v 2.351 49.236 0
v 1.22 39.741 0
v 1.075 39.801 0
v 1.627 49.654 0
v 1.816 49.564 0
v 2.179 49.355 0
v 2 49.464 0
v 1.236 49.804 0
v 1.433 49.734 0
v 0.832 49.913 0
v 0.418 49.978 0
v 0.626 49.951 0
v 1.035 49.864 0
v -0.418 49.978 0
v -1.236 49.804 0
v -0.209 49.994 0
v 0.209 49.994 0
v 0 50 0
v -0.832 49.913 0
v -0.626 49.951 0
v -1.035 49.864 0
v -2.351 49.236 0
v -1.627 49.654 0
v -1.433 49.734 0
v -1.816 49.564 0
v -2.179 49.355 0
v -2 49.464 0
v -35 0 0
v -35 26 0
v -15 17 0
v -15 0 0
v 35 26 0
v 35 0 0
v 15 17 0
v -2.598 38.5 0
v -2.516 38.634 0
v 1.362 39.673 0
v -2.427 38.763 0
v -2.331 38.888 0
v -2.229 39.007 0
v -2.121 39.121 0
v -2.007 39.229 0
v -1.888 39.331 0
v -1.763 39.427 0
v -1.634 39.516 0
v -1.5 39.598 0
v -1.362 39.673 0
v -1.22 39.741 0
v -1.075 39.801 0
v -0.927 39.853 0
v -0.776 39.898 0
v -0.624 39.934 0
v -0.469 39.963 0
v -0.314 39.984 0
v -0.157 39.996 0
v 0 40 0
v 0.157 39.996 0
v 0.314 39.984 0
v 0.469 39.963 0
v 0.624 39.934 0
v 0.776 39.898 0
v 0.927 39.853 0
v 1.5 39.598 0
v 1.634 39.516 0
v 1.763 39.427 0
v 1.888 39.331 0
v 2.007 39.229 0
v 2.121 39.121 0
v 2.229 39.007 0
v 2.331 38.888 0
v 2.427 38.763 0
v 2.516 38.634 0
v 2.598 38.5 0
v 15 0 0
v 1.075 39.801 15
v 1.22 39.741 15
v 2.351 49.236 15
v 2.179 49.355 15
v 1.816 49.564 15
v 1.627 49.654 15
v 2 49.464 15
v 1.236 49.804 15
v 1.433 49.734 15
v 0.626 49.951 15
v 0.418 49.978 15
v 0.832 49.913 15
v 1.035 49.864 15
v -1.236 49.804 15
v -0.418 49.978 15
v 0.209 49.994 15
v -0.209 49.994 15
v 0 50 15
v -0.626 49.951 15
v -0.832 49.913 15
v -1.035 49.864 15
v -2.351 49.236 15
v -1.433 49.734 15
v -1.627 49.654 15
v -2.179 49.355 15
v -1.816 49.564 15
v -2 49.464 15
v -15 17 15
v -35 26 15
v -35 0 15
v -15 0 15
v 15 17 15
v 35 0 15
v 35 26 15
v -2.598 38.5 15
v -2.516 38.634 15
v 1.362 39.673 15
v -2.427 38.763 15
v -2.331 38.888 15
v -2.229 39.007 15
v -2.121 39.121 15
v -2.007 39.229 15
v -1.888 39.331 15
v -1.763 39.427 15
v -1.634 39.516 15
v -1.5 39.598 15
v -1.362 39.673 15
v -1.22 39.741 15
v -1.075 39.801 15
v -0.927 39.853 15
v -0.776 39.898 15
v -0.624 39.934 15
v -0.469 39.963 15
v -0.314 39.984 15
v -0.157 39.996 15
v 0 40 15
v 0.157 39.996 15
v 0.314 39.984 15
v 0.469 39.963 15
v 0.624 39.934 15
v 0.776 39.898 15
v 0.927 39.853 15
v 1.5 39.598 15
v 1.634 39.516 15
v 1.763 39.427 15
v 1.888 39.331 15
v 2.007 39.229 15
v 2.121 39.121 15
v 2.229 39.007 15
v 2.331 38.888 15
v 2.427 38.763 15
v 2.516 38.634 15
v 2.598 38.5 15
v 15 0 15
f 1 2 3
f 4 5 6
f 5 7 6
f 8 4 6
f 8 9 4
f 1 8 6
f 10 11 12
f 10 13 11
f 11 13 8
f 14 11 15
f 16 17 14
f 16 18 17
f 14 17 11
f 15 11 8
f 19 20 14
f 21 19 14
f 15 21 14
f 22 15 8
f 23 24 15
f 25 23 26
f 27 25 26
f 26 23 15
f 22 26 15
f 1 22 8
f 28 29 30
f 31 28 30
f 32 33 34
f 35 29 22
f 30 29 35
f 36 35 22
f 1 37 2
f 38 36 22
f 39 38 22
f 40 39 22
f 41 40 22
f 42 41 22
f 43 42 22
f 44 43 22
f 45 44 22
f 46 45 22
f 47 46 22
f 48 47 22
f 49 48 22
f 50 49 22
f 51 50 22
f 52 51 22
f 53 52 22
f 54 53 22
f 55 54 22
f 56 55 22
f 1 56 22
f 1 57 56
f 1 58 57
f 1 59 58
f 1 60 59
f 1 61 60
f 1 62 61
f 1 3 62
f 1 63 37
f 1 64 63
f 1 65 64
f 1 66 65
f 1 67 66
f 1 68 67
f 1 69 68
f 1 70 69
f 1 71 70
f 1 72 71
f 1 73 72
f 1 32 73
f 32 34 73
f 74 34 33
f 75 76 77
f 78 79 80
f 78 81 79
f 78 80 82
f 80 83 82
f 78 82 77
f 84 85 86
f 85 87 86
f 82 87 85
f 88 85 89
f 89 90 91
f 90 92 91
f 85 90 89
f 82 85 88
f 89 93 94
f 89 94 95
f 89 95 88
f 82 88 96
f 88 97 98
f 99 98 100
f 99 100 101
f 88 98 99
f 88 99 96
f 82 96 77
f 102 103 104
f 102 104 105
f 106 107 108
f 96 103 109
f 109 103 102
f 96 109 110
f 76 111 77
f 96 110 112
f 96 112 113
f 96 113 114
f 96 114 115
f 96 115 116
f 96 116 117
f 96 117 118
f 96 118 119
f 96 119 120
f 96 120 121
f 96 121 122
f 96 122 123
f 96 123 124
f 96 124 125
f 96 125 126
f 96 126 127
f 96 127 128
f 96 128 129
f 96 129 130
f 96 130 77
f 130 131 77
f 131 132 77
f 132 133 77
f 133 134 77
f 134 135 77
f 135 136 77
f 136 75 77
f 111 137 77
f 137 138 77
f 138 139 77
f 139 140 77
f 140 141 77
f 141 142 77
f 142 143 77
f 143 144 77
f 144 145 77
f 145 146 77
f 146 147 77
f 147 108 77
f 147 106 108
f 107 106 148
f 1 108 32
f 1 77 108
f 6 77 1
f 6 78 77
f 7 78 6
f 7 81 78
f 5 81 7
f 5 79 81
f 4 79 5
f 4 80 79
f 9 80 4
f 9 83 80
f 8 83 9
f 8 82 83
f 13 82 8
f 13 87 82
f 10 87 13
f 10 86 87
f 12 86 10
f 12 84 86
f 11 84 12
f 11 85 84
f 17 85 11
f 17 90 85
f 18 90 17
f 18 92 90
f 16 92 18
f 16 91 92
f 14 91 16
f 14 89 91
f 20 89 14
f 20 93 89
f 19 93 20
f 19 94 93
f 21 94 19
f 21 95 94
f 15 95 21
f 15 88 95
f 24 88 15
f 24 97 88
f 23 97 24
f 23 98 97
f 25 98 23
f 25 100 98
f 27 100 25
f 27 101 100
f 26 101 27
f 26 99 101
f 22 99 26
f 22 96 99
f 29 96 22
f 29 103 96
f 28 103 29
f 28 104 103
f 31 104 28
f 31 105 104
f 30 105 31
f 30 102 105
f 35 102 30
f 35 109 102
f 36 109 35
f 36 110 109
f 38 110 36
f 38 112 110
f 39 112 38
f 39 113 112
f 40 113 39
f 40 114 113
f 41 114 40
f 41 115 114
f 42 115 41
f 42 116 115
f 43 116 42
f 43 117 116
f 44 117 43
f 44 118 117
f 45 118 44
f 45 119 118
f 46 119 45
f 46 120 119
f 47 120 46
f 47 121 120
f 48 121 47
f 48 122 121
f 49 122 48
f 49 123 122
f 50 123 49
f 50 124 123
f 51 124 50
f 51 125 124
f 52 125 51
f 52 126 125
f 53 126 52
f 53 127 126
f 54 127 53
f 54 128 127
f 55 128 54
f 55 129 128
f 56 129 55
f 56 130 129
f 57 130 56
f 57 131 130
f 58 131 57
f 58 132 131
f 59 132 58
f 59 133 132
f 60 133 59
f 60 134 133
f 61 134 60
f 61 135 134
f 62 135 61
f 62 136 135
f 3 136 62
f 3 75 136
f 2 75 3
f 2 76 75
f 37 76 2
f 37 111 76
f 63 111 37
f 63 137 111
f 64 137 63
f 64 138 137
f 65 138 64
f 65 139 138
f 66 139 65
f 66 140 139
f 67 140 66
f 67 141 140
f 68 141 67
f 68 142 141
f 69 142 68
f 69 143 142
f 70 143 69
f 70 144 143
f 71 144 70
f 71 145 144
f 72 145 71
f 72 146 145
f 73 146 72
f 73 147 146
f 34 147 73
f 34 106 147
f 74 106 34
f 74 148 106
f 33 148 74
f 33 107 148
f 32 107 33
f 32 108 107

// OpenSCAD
// coerce_lexpr bridge — typed substitution session, 2026-05-29
//
// "Bidirectional wrapper-kind-and-depth coercion. Bridge `value`
//  (currently at `from_typ`) to `to_typ` by inserting `.deref` chain
//  and/or `.mk` chain to match wrapper sequences. Common-suffix
//  wraps stay untouched."
//
// — lean_verify/src/expr_shared.rs, coerce_lexpr
//
// The function spans a gap between two typings while preserving the
// inner that doesn't need to change. The sculpture is shaped the
// same way: two pillars separated by an arched opening you can see
// through, with the inner space preserved.
//
// Print orientation: stand on the bottom (the flat base of the two
// pillars). The arch is self-supporting because it's circular at the
// top — no overhangs steeper than ~45°. ~0.2mm layer height,
// ~20% infill.

$fn = 120;

// ── Dimensions (mm) ──
width = 70;             // total width across both pillars
total_height = 50;      // peak of the arch above the ground
pillar_width = 10;      // outer leg thickness
opening_width_top = 30; // arch opening width at its widest
wall_thickness = 8;     // distance from outer arch to inner arch
depth = 15;             // extrude depth (becomes thickness)

// ── Bridge silhouette ──
//
// OUTER: a horseshoe — two rectangles for the pillars, hulled with a
// circle at the top to form a rounded arch.
// INNER: a smaller horseshoe subtracted, leaving the bridge's
// characteristic gap-with-arched-top.

linear_extrude(height = depth) {
    difference() {
        // OUTER horseshoe
        hull() {
            // Pillar bottoms
            translate([-width/2, 0]) square([pillar_width, 1]);
            translate([width/2 - pillar_width, 0]) square([pillar_width, 1]);
            // Pillar tops (anchored slightly below where arch begins)
            translate([-width/2, total_height/2]) square([1, 1]);
            translate([width/2 - 1, total_height/2]) square([1, 1]);
            // Arch peak
            translate([0, total_height - 4]) circle(r = 4);
        }

        // INNER horseshoe (the bridge opening, reaching down to ground)
        translate([0, -1])  // -1 so the opening punches through the bottom
            hull() {
                // Opening bottom (full opening width)
                translate([-opening_width_top/2, 0])
                    square([opening_width_top, 1]);
                // Opening sides
                translate([-opening_width_top/2, total_height/2 - wall_thickness])
                    square([1, 1]);
                translate([opening_width_top/2 - 1, total_height/2 - wall_thickness])
                    square([1, 1]);
                // Opening peak (smaller circle, below the outer peak)
                translate([0, total_height - wall_thickness - 4])
                    circle(r = 3);
            }
    }
}
